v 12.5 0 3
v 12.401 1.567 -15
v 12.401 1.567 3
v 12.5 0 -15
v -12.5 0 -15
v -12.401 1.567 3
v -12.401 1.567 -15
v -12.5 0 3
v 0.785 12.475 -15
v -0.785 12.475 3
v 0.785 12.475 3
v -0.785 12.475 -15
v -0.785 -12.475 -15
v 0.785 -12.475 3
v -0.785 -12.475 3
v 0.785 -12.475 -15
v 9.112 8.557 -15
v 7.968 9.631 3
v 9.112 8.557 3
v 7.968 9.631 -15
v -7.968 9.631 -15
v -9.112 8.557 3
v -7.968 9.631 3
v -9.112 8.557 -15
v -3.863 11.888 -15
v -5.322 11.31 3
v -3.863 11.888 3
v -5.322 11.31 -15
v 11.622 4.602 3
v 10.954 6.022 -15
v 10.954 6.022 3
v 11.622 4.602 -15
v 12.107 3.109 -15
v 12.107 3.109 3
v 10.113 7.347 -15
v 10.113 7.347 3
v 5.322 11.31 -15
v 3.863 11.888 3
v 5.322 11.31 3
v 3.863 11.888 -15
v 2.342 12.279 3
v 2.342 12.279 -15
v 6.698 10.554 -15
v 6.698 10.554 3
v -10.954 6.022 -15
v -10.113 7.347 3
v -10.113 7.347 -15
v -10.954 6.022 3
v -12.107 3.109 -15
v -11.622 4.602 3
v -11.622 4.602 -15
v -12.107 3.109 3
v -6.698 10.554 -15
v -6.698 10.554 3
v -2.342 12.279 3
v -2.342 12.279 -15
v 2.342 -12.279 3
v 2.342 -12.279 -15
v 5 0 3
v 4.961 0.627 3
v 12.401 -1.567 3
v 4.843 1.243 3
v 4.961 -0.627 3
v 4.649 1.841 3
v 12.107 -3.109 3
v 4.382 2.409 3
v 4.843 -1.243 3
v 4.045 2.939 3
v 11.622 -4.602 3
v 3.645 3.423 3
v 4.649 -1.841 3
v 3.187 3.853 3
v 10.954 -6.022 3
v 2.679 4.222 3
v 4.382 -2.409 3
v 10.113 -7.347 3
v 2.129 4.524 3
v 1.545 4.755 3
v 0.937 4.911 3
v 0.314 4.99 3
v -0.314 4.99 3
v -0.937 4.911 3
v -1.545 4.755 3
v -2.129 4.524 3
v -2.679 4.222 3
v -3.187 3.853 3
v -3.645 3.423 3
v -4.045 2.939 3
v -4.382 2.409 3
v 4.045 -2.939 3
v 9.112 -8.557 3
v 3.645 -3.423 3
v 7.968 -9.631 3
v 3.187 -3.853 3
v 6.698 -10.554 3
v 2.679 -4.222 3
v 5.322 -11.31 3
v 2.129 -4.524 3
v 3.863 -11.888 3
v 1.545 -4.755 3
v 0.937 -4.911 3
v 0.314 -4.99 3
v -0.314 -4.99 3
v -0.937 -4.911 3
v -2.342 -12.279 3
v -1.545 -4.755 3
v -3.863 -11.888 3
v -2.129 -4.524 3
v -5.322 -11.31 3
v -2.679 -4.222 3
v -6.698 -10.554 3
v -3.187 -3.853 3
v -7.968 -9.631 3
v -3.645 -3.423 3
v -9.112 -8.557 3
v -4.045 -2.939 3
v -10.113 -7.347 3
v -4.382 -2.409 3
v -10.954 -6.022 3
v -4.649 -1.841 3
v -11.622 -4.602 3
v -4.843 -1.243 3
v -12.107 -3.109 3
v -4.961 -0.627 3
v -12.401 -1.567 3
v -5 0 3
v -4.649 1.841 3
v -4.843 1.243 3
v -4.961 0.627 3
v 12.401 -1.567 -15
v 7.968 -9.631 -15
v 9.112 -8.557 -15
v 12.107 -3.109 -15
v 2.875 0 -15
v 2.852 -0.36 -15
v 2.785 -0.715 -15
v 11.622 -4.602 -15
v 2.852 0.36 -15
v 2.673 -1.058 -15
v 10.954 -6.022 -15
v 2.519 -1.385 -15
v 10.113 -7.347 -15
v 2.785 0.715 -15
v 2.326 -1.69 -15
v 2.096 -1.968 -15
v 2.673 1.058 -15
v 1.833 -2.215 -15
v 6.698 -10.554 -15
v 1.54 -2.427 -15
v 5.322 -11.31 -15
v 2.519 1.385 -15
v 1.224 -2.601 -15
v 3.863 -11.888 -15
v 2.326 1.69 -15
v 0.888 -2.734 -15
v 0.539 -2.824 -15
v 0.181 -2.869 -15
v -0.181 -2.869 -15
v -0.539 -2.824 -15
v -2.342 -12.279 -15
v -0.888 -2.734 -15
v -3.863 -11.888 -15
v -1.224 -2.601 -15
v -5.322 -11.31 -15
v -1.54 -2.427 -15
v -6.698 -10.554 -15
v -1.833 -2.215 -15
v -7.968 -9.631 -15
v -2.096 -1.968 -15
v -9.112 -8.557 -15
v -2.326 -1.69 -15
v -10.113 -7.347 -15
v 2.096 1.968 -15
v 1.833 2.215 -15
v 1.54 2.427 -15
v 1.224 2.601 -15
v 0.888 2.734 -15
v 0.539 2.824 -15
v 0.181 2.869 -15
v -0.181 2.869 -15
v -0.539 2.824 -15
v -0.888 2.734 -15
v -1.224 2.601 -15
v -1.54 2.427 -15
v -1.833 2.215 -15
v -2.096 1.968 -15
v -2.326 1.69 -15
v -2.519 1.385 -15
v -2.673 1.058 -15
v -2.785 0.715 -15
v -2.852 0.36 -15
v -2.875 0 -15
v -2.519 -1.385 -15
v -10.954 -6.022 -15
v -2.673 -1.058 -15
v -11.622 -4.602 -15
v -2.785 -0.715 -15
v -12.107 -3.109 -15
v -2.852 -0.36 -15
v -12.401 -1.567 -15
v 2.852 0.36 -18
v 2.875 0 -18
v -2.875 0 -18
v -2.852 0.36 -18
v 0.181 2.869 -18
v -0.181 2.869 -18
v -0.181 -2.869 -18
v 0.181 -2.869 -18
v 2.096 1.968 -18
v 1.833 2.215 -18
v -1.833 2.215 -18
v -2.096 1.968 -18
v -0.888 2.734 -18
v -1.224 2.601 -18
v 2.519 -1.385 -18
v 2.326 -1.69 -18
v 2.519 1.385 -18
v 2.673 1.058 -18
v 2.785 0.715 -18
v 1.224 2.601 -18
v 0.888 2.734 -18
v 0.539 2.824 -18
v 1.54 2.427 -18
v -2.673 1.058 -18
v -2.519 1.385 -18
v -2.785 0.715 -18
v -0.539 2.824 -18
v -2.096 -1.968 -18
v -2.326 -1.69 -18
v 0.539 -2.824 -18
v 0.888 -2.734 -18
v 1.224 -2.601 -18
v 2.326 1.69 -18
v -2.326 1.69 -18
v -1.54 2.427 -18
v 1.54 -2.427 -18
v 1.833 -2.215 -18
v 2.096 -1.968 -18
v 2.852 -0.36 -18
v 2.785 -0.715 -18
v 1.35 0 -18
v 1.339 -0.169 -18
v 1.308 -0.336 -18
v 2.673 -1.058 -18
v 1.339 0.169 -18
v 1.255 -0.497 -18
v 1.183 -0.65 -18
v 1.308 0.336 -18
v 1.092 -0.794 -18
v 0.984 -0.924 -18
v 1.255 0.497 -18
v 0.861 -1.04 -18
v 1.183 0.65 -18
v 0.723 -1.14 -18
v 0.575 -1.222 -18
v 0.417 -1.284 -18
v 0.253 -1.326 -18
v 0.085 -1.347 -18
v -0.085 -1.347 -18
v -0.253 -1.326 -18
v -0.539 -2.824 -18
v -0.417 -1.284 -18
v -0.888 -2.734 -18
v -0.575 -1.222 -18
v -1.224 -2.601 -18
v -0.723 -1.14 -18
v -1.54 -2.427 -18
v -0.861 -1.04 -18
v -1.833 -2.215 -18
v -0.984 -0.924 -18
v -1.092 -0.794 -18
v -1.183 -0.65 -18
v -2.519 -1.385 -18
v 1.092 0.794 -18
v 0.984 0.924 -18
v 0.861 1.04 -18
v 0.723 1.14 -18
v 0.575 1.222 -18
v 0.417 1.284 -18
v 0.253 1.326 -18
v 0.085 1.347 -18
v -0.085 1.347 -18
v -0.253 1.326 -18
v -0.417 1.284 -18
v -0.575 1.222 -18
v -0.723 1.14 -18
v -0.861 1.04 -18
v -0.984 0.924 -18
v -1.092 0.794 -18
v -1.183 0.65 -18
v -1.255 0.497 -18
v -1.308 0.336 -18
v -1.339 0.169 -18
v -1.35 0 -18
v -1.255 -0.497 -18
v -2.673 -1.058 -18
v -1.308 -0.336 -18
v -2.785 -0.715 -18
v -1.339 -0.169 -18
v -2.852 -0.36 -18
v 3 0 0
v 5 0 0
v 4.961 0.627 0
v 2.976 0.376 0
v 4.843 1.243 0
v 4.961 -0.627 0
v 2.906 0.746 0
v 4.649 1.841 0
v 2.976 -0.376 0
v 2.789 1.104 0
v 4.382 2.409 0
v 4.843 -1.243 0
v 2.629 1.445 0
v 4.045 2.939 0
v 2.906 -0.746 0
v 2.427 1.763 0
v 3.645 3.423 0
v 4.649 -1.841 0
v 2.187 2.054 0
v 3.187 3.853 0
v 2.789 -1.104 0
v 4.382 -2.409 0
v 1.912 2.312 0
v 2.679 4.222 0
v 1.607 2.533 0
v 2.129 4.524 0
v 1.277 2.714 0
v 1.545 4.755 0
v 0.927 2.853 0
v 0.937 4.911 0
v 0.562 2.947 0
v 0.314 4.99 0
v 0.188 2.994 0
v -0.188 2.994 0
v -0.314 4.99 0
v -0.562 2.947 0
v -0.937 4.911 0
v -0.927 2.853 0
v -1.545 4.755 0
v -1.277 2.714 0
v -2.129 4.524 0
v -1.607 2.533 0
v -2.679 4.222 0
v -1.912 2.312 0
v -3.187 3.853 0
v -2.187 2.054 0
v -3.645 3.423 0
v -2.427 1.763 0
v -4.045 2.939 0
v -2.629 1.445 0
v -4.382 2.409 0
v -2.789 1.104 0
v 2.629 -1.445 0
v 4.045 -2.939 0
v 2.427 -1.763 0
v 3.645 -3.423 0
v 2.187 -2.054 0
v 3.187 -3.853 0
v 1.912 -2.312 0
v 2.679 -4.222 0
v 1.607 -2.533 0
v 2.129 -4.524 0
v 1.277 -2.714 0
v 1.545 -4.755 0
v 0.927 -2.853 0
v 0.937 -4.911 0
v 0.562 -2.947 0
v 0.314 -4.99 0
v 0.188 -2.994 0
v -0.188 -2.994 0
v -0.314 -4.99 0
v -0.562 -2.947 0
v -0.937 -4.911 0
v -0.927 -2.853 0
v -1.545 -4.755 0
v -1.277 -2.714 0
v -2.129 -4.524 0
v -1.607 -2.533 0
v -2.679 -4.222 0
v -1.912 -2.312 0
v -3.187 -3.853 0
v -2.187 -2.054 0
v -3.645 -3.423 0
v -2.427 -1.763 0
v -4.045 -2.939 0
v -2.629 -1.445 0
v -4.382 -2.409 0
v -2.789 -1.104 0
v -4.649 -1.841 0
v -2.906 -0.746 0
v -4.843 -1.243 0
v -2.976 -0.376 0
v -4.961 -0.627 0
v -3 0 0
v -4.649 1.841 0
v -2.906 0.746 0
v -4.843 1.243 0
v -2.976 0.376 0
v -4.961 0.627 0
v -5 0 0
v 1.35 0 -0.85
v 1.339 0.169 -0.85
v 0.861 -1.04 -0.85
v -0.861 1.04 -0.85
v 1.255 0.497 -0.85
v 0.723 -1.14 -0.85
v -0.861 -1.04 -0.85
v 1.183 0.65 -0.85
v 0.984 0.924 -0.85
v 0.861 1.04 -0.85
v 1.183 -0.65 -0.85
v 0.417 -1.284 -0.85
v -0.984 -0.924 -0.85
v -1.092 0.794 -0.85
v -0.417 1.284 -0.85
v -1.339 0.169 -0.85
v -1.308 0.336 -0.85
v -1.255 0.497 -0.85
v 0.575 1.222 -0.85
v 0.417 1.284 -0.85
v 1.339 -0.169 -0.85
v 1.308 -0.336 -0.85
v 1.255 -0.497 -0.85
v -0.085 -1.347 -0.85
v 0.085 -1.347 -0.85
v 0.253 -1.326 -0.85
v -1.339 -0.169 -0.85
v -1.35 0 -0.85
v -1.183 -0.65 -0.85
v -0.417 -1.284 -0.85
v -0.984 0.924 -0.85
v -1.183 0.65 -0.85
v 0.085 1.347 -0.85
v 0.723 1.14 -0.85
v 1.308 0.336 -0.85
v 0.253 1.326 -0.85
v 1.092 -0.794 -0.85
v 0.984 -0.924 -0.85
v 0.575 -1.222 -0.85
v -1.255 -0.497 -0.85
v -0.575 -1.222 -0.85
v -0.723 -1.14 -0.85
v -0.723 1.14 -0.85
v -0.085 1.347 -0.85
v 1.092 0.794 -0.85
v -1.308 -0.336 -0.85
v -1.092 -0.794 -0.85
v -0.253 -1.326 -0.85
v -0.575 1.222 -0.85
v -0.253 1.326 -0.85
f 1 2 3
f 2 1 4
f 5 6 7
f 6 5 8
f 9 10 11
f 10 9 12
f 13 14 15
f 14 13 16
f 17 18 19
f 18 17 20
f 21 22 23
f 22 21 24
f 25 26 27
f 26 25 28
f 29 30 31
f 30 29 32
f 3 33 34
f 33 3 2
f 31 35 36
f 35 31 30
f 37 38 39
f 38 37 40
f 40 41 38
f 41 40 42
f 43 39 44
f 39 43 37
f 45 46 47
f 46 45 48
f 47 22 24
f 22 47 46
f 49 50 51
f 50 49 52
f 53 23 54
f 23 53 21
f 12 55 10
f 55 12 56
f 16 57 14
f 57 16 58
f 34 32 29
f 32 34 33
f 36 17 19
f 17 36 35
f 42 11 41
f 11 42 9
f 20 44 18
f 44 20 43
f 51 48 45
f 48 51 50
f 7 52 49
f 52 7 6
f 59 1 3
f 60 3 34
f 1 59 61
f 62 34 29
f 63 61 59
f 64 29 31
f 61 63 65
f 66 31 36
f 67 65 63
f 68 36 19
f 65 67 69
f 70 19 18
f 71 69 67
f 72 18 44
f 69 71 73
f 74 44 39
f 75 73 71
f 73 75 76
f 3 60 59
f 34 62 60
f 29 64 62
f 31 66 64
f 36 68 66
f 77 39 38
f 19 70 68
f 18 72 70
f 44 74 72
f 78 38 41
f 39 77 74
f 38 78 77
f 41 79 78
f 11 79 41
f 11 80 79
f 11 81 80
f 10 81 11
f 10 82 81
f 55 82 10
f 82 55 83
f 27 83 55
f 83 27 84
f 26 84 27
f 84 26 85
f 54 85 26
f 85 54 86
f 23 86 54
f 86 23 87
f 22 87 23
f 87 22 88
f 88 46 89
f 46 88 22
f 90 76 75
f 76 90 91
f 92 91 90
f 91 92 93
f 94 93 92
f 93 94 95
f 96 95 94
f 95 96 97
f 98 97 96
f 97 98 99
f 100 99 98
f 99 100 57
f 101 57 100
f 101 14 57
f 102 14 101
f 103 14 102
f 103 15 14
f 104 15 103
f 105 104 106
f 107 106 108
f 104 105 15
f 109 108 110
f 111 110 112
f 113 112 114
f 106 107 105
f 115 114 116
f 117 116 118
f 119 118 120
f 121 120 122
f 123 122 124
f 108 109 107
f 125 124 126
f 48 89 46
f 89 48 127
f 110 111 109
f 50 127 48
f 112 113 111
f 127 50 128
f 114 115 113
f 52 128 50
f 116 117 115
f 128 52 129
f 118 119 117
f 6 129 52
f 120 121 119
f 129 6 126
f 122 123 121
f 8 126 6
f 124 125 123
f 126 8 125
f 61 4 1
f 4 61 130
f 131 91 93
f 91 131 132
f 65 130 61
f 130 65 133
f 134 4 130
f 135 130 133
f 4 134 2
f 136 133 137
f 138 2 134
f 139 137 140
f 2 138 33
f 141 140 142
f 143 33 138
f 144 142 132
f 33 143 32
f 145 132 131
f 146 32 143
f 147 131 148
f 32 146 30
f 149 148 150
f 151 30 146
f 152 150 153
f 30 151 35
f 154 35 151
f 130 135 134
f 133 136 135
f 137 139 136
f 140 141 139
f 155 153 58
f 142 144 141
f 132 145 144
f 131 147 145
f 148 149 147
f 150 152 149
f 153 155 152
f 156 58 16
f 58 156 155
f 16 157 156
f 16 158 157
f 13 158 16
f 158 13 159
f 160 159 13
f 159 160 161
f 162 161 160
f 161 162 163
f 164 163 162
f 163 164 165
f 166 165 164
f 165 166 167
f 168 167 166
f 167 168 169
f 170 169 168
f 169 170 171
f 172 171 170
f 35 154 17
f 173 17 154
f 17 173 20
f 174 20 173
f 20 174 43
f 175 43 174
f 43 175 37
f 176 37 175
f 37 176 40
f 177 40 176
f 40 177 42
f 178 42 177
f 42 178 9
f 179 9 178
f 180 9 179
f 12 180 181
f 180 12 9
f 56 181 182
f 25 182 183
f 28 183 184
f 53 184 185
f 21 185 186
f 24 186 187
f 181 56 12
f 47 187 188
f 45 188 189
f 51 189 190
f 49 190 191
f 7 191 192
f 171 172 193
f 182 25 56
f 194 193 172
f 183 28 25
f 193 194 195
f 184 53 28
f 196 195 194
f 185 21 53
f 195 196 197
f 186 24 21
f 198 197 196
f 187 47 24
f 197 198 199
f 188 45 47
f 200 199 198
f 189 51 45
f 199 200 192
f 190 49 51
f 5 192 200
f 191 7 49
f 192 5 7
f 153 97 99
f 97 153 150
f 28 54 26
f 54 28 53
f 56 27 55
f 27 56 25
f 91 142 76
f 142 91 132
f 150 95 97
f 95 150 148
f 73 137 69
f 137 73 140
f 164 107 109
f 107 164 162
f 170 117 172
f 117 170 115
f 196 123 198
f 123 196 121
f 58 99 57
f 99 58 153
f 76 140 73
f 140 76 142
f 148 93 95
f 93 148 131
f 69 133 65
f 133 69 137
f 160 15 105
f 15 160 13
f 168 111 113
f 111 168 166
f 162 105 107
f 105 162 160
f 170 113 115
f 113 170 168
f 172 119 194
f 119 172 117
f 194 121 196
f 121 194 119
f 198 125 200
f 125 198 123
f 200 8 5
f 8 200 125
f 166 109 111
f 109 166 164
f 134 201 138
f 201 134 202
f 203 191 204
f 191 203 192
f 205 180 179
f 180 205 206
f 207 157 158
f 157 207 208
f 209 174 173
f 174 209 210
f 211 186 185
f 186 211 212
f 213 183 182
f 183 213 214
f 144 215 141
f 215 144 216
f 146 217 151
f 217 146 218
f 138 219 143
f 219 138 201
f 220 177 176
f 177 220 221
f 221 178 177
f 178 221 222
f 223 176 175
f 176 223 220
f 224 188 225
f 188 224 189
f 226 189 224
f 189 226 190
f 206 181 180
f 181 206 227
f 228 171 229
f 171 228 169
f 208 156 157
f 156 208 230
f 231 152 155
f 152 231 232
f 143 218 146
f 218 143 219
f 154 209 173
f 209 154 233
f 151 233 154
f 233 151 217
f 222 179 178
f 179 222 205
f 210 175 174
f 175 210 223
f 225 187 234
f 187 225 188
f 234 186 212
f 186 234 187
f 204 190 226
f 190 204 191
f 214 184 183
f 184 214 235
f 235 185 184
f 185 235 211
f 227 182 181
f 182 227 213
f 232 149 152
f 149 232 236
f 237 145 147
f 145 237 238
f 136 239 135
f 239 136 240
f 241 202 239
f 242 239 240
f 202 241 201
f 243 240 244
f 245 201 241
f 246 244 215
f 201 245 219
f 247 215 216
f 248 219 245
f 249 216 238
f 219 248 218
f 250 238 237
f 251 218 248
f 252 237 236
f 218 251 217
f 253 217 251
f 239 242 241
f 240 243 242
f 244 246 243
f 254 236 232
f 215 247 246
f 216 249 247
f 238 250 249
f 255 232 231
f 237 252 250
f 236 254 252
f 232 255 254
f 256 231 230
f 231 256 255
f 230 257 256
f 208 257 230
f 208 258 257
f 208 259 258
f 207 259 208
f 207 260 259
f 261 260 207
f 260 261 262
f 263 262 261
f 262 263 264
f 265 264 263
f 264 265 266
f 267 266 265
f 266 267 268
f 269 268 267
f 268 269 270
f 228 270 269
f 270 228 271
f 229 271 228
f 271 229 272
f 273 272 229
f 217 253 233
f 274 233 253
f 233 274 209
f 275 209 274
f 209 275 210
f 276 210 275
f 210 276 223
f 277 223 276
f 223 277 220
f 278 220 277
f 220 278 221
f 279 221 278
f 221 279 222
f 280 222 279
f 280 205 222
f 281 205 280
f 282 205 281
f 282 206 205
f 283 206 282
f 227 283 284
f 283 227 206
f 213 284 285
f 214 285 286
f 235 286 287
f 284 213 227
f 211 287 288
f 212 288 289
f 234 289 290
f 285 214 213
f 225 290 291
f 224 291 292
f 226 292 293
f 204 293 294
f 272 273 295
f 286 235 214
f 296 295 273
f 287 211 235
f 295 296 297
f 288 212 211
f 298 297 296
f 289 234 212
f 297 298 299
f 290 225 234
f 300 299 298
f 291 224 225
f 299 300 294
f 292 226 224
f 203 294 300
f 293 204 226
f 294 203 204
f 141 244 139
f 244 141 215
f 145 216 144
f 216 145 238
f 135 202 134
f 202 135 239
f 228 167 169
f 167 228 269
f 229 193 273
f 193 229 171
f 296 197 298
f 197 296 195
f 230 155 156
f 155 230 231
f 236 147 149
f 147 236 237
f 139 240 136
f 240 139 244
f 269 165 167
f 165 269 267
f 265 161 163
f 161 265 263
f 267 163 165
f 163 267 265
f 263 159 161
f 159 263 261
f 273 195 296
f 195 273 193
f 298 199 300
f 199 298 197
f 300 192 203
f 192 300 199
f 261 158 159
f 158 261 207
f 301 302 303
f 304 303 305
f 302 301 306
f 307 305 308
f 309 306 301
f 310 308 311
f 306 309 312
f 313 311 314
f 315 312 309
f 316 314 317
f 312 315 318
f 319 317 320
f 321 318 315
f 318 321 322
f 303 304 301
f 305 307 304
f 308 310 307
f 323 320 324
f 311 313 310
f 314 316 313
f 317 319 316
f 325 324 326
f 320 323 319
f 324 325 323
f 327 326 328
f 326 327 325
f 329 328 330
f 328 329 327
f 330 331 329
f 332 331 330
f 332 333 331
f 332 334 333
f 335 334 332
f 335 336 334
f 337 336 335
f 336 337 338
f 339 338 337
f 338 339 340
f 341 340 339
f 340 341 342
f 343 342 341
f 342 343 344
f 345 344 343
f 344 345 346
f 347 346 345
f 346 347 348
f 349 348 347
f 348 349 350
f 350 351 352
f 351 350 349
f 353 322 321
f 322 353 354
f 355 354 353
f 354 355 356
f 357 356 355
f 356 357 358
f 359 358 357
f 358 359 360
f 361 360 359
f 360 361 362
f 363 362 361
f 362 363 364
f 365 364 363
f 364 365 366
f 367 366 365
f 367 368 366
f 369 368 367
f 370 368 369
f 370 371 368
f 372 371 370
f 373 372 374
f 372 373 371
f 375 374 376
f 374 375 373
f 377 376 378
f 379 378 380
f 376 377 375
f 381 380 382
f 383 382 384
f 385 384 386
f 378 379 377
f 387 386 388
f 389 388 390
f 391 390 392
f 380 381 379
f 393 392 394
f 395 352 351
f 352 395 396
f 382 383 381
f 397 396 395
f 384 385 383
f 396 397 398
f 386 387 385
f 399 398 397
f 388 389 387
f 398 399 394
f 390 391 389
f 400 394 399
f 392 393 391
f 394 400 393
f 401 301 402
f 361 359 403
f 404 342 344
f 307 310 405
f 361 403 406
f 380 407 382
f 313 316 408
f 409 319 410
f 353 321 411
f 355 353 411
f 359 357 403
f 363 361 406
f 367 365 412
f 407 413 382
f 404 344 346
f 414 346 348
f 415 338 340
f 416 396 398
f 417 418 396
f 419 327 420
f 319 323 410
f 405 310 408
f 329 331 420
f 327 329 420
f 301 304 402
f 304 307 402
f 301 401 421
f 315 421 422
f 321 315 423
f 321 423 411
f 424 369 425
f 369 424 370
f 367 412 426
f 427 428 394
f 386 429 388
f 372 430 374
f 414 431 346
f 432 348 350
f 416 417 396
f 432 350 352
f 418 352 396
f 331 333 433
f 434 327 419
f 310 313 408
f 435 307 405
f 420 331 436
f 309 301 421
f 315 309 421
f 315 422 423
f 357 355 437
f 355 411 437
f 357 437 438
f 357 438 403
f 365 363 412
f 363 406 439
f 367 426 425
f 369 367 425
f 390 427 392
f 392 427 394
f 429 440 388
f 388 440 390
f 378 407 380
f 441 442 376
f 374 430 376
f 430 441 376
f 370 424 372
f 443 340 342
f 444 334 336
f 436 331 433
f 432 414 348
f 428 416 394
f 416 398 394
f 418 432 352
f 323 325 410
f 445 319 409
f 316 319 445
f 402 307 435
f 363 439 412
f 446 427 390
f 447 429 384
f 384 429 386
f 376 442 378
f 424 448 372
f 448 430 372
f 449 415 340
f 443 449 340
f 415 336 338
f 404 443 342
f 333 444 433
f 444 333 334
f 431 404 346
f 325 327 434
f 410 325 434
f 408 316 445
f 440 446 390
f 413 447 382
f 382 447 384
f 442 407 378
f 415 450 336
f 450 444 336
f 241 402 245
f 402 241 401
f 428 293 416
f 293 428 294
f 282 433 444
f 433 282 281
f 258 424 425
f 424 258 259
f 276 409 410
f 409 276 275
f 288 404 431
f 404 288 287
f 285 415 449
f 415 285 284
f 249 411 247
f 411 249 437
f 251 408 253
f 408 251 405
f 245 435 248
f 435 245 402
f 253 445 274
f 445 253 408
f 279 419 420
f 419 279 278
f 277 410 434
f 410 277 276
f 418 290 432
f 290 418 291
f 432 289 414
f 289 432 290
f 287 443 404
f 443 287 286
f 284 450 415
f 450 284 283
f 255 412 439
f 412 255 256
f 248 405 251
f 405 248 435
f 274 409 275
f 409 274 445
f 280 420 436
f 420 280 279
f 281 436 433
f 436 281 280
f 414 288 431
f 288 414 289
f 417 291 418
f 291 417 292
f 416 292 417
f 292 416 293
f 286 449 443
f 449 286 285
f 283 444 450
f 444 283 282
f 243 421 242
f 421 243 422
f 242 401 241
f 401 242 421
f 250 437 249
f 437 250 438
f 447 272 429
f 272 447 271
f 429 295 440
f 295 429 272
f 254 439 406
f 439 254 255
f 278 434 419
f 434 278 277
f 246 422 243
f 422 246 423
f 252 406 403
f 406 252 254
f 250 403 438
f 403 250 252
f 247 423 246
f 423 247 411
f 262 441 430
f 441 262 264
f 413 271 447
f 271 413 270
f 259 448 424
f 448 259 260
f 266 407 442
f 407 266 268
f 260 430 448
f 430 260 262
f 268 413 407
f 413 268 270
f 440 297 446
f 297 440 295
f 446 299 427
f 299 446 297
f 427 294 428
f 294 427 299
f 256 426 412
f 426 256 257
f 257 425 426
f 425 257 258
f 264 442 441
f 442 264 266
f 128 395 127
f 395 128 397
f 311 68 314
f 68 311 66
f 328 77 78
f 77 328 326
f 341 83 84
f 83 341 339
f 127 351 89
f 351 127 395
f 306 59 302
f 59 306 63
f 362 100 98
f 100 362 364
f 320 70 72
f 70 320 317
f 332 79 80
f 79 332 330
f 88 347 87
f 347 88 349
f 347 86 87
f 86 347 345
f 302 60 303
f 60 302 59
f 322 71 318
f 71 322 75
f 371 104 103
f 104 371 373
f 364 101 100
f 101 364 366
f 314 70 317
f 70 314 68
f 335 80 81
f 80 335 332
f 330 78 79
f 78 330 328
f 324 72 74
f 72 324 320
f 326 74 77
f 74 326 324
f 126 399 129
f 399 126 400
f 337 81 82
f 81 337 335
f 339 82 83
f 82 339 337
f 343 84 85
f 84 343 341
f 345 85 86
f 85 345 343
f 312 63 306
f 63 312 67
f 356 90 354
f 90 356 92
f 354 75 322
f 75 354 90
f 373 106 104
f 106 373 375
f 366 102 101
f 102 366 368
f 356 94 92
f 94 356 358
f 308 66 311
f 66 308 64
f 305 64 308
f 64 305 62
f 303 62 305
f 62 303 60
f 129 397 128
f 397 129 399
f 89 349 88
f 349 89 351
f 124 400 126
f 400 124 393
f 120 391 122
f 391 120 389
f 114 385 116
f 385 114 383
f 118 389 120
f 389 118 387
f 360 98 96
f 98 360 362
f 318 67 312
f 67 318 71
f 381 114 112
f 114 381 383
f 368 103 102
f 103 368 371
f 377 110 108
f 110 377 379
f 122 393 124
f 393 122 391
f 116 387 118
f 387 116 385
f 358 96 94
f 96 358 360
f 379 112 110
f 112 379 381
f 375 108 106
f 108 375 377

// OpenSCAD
$fn = 50;

difference() {
	union() {
		translate(v = [0, 0, -15.0]) {
			cylinder(h = 18, r = 12.5);
		}
		#translate(v = [0, 0, -18.0]) {
			cylinder(h = 18, r = 2.875);
		}
	}
	union() {
		translate(v = [0, 0, 0]) {
			rotate(a = [0, 0, 0]) {
				difference() {
					union() {
						translate(v = [0, 0, -18.0]) {
							cylinder(h = 18, r = 1.0);
						}
						translate(v = [0, 0, -0.85]) {
							cylinder(h = 0.85, r1 = 1.35, r2 = 3.0);
						}
						translate(v = [0, 0, -18.0]) {
							cylinder(h = 18, r = 1.35);
						}
						translate(v = [0, 0, -18.0]) {
							cylinder(h = 18, r = 1.0);
						}
					}
					union();
				}
			}
		}
		#cylinder(h = 3, r = 5.0);
	}
}
